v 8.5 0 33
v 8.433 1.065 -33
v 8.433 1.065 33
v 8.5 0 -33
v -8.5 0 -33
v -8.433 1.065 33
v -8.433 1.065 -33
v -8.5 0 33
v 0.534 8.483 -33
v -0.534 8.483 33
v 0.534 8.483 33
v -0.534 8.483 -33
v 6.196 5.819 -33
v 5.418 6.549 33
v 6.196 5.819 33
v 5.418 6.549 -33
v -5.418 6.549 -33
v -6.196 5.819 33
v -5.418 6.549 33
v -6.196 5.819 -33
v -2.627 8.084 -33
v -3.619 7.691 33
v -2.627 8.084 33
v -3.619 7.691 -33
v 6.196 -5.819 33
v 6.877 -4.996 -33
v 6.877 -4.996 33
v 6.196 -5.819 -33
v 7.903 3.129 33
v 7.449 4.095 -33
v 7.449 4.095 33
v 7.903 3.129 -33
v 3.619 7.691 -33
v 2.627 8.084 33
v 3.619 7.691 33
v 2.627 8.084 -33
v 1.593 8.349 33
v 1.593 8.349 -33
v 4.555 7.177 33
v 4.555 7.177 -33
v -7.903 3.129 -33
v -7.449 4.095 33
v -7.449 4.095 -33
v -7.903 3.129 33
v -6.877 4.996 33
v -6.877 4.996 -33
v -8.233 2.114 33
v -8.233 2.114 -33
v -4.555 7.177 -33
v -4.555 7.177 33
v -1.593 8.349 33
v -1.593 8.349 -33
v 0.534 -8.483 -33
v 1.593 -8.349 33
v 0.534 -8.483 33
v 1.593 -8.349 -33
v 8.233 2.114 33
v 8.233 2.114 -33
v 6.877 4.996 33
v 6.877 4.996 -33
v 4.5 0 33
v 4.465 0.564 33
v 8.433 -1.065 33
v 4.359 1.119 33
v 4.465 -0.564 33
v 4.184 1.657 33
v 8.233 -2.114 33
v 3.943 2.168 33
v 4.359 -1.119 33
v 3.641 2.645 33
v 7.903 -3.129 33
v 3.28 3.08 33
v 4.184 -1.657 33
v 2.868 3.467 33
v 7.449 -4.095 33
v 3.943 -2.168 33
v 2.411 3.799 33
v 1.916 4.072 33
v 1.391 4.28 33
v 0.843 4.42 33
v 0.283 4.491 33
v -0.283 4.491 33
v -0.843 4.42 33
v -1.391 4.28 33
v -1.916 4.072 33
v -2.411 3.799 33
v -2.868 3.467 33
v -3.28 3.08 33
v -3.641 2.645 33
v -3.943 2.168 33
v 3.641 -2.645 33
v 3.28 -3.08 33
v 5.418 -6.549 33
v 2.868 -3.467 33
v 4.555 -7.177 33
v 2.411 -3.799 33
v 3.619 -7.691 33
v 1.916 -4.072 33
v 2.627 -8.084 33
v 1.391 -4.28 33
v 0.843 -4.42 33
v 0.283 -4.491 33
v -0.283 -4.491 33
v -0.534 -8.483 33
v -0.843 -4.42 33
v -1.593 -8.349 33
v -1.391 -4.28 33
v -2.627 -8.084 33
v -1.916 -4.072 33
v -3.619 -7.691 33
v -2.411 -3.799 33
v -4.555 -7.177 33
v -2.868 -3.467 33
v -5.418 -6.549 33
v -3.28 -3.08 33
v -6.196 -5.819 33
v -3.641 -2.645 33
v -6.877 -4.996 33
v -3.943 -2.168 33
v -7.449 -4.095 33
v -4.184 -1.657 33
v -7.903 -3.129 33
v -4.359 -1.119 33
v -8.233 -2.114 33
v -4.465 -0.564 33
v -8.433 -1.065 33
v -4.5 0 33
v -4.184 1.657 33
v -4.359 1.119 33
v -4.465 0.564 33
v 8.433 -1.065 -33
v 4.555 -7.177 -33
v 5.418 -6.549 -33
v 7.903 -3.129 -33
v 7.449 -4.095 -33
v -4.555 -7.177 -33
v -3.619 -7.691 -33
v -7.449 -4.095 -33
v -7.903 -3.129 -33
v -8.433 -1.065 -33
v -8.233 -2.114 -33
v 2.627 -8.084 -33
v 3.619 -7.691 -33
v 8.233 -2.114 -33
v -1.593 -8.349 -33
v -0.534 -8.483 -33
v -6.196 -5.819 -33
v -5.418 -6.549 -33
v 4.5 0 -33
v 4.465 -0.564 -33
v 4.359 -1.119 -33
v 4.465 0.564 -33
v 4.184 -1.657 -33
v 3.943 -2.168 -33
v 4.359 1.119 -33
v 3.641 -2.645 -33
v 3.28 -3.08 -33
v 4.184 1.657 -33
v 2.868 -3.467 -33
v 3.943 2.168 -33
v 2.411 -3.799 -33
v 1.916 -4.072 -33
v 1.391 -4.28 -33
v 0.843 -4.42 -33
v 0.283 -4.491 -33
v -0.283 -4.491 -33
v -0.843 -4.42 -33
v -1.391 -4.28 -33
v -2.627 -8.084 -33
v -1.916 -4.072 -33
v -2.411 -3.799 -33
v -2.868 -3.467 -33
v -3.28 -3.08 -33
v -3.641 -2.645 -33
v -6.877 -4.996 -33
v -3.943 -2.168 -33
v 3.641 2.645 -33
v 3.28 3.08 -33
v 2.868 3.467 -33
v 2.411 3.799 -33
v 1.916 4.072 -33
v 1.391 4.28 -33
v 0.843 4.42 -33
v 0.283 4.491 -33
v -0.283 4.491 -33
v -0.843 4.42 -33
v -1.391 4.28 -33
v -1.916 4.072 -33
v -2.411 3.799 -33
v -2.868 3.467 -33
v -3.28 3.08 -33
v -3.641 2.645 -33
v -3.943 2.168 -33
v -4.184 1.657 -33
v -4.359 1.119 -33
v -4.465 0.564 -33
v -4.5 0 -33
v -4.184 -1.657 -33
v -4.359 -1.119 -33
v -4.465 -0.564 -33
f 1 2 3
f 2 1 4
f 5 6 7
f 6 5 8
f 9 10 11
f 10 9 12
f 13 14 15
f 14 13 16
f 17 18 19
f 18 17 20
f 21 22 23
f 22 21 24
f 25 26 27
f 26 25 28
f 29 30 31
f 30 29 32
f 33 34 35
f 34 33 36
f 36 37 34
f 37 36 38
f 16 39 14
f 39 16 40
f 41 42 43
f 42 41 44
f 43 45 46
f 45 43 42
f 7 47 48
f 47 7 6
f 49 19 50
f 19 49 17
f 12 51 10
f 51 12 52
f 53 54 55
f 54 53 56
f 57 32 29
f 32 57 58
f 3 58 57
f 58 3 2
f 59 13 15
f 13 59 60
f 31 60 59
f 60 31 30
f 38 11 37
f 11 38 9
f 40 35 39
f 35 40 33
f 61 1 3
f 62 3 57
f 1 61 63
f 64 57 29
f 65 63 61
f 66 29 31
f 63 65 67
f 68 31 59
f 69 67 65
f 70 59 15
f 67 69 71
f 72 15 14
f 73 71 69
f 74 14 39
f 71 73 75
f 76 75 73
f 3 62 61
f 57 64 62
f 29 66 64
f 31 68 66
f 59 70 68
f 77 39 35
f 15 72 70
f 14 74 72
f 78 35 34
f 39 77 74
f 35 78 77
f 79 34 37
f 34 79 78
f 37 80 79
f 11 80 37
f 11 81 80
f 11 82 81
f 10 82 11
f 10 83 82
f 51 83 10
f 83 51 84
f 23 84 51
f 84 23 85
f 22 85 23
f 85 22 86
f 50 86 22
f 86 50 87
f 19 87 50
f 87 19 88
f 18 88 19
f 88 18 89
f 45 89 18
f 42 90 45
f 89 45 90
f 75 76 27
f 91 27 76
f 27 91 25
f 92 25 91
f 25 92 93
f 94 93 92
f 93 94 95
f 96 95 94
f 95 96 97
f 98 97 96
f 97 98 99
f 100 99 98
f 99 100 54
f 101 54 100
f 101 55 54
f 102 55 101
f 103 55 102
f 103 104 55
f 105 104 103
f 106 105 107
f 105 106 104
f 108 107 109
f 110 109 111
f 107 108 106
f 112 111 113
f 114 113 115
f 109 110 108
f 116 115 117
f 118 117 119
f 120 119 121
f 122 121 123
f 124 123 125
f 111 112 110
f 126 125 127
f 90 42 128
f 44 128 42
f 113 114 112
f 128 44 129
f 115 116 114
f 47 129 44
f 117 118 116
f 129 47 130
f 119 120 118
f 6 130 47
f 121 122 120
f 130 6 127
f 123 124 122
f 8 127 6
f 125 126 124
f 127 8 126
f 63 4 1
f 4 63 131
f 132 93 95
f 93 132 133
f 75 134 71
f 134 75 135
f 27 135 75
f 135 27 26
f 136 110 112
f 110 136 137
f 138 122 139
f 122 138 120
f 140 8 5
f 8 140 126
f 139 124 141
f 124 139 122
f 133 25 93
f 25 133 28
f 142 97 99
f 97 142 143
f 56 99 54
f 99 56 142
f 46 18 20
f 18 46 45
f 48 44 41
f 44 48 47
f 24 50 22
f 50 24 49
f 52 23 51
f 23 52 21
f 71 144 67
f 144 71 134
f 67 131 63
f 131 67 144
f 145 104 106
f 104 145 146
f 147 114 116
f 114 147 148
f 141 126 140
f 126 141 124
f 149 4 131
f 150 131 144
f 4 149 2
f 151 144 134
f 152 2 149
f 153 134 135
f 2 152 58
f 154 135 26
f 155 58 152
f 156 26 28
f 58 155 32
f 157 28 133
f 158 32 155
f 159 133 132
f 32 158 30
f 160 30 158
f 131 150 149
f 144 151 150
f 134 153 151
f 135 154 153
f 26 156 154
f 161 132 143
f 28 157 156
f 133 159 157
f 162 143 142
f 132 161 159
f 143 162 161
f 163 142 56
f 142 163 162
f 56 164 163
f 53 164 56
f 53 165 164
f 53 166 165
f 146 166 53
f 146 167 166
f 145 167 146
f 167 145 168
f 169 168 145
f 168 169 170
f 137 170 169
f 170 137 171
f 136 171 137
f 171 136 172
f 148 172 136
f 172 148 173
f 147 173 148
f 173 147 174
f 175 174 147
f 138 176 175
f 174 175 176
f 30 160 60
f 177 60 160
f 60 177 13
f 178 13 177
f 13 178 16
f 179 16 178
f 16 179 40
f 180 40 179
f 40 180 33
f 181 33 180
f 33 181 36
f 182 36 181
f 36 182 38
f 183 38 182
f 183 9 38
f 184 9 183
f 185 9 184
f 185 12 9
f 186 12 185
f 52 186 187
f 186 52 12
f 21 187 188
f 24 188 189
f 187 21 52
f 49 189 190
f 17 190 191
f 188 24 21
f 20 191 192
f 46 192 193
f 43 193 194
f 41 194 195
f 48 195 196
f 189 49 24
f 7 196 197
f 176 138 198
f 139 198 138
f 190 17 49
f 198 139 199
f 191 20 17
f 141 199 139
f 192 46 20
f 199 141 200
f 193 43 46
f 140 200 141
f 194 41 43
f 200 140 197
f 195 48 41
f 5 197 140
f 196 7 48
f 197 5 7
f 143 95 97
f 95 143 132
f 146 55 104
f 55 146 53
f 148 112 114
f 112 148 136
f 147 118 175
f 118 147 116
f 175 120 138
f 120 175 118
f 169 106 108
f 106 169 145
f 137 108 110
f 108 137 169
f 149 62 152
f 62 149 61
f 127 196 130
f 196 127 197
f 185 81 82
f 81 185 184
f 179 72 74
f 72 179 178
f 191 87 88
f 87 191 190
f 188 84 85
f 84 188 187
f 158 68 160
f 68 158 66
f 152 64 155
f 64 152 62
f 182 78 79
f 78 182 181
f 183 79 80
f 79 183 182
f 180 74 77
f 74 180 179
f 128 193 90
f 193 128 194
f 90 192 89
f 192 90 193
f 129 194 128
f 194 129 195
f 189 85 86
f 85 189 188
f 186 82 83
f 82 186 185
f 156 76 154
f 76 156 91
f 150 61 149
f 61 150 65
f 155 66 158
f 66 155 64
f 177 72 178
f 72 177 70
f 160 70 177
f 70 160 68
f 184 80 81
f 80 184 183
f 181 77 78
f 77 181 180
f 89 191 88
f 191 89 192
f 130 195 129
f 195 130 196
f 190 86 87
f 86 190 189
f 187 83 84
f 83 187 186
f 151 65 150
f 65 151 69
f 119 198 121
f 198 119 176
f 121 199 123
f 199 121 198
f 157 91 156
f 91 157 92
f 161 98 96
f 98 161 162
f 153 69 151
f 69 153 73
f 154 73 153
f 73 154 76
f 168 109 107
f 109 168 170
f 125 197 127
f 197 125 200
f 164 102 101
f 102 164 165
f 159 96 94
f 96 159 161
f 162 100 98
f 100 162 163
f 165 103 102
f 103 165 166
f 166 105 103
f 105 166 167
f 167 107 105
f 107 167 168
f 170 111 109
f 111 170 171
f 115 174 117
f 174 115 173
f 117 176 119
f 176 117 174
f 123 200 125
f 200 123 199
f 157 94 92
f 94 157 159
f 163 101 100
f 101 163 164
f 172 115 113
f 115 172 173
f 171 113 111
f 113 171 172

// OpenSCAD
$fn = 50;


difference() {
	union() {
		translate(v = [0, 0, -33.0000000000]) {
			cylinder(h = 66, r = 8.5000000000);
		}
	}
	union() {
		translate(v = [0, 0, -100.0000000000]) {
			cylinder(h = 200, r = 4.5000000000);
		}
	}
}
